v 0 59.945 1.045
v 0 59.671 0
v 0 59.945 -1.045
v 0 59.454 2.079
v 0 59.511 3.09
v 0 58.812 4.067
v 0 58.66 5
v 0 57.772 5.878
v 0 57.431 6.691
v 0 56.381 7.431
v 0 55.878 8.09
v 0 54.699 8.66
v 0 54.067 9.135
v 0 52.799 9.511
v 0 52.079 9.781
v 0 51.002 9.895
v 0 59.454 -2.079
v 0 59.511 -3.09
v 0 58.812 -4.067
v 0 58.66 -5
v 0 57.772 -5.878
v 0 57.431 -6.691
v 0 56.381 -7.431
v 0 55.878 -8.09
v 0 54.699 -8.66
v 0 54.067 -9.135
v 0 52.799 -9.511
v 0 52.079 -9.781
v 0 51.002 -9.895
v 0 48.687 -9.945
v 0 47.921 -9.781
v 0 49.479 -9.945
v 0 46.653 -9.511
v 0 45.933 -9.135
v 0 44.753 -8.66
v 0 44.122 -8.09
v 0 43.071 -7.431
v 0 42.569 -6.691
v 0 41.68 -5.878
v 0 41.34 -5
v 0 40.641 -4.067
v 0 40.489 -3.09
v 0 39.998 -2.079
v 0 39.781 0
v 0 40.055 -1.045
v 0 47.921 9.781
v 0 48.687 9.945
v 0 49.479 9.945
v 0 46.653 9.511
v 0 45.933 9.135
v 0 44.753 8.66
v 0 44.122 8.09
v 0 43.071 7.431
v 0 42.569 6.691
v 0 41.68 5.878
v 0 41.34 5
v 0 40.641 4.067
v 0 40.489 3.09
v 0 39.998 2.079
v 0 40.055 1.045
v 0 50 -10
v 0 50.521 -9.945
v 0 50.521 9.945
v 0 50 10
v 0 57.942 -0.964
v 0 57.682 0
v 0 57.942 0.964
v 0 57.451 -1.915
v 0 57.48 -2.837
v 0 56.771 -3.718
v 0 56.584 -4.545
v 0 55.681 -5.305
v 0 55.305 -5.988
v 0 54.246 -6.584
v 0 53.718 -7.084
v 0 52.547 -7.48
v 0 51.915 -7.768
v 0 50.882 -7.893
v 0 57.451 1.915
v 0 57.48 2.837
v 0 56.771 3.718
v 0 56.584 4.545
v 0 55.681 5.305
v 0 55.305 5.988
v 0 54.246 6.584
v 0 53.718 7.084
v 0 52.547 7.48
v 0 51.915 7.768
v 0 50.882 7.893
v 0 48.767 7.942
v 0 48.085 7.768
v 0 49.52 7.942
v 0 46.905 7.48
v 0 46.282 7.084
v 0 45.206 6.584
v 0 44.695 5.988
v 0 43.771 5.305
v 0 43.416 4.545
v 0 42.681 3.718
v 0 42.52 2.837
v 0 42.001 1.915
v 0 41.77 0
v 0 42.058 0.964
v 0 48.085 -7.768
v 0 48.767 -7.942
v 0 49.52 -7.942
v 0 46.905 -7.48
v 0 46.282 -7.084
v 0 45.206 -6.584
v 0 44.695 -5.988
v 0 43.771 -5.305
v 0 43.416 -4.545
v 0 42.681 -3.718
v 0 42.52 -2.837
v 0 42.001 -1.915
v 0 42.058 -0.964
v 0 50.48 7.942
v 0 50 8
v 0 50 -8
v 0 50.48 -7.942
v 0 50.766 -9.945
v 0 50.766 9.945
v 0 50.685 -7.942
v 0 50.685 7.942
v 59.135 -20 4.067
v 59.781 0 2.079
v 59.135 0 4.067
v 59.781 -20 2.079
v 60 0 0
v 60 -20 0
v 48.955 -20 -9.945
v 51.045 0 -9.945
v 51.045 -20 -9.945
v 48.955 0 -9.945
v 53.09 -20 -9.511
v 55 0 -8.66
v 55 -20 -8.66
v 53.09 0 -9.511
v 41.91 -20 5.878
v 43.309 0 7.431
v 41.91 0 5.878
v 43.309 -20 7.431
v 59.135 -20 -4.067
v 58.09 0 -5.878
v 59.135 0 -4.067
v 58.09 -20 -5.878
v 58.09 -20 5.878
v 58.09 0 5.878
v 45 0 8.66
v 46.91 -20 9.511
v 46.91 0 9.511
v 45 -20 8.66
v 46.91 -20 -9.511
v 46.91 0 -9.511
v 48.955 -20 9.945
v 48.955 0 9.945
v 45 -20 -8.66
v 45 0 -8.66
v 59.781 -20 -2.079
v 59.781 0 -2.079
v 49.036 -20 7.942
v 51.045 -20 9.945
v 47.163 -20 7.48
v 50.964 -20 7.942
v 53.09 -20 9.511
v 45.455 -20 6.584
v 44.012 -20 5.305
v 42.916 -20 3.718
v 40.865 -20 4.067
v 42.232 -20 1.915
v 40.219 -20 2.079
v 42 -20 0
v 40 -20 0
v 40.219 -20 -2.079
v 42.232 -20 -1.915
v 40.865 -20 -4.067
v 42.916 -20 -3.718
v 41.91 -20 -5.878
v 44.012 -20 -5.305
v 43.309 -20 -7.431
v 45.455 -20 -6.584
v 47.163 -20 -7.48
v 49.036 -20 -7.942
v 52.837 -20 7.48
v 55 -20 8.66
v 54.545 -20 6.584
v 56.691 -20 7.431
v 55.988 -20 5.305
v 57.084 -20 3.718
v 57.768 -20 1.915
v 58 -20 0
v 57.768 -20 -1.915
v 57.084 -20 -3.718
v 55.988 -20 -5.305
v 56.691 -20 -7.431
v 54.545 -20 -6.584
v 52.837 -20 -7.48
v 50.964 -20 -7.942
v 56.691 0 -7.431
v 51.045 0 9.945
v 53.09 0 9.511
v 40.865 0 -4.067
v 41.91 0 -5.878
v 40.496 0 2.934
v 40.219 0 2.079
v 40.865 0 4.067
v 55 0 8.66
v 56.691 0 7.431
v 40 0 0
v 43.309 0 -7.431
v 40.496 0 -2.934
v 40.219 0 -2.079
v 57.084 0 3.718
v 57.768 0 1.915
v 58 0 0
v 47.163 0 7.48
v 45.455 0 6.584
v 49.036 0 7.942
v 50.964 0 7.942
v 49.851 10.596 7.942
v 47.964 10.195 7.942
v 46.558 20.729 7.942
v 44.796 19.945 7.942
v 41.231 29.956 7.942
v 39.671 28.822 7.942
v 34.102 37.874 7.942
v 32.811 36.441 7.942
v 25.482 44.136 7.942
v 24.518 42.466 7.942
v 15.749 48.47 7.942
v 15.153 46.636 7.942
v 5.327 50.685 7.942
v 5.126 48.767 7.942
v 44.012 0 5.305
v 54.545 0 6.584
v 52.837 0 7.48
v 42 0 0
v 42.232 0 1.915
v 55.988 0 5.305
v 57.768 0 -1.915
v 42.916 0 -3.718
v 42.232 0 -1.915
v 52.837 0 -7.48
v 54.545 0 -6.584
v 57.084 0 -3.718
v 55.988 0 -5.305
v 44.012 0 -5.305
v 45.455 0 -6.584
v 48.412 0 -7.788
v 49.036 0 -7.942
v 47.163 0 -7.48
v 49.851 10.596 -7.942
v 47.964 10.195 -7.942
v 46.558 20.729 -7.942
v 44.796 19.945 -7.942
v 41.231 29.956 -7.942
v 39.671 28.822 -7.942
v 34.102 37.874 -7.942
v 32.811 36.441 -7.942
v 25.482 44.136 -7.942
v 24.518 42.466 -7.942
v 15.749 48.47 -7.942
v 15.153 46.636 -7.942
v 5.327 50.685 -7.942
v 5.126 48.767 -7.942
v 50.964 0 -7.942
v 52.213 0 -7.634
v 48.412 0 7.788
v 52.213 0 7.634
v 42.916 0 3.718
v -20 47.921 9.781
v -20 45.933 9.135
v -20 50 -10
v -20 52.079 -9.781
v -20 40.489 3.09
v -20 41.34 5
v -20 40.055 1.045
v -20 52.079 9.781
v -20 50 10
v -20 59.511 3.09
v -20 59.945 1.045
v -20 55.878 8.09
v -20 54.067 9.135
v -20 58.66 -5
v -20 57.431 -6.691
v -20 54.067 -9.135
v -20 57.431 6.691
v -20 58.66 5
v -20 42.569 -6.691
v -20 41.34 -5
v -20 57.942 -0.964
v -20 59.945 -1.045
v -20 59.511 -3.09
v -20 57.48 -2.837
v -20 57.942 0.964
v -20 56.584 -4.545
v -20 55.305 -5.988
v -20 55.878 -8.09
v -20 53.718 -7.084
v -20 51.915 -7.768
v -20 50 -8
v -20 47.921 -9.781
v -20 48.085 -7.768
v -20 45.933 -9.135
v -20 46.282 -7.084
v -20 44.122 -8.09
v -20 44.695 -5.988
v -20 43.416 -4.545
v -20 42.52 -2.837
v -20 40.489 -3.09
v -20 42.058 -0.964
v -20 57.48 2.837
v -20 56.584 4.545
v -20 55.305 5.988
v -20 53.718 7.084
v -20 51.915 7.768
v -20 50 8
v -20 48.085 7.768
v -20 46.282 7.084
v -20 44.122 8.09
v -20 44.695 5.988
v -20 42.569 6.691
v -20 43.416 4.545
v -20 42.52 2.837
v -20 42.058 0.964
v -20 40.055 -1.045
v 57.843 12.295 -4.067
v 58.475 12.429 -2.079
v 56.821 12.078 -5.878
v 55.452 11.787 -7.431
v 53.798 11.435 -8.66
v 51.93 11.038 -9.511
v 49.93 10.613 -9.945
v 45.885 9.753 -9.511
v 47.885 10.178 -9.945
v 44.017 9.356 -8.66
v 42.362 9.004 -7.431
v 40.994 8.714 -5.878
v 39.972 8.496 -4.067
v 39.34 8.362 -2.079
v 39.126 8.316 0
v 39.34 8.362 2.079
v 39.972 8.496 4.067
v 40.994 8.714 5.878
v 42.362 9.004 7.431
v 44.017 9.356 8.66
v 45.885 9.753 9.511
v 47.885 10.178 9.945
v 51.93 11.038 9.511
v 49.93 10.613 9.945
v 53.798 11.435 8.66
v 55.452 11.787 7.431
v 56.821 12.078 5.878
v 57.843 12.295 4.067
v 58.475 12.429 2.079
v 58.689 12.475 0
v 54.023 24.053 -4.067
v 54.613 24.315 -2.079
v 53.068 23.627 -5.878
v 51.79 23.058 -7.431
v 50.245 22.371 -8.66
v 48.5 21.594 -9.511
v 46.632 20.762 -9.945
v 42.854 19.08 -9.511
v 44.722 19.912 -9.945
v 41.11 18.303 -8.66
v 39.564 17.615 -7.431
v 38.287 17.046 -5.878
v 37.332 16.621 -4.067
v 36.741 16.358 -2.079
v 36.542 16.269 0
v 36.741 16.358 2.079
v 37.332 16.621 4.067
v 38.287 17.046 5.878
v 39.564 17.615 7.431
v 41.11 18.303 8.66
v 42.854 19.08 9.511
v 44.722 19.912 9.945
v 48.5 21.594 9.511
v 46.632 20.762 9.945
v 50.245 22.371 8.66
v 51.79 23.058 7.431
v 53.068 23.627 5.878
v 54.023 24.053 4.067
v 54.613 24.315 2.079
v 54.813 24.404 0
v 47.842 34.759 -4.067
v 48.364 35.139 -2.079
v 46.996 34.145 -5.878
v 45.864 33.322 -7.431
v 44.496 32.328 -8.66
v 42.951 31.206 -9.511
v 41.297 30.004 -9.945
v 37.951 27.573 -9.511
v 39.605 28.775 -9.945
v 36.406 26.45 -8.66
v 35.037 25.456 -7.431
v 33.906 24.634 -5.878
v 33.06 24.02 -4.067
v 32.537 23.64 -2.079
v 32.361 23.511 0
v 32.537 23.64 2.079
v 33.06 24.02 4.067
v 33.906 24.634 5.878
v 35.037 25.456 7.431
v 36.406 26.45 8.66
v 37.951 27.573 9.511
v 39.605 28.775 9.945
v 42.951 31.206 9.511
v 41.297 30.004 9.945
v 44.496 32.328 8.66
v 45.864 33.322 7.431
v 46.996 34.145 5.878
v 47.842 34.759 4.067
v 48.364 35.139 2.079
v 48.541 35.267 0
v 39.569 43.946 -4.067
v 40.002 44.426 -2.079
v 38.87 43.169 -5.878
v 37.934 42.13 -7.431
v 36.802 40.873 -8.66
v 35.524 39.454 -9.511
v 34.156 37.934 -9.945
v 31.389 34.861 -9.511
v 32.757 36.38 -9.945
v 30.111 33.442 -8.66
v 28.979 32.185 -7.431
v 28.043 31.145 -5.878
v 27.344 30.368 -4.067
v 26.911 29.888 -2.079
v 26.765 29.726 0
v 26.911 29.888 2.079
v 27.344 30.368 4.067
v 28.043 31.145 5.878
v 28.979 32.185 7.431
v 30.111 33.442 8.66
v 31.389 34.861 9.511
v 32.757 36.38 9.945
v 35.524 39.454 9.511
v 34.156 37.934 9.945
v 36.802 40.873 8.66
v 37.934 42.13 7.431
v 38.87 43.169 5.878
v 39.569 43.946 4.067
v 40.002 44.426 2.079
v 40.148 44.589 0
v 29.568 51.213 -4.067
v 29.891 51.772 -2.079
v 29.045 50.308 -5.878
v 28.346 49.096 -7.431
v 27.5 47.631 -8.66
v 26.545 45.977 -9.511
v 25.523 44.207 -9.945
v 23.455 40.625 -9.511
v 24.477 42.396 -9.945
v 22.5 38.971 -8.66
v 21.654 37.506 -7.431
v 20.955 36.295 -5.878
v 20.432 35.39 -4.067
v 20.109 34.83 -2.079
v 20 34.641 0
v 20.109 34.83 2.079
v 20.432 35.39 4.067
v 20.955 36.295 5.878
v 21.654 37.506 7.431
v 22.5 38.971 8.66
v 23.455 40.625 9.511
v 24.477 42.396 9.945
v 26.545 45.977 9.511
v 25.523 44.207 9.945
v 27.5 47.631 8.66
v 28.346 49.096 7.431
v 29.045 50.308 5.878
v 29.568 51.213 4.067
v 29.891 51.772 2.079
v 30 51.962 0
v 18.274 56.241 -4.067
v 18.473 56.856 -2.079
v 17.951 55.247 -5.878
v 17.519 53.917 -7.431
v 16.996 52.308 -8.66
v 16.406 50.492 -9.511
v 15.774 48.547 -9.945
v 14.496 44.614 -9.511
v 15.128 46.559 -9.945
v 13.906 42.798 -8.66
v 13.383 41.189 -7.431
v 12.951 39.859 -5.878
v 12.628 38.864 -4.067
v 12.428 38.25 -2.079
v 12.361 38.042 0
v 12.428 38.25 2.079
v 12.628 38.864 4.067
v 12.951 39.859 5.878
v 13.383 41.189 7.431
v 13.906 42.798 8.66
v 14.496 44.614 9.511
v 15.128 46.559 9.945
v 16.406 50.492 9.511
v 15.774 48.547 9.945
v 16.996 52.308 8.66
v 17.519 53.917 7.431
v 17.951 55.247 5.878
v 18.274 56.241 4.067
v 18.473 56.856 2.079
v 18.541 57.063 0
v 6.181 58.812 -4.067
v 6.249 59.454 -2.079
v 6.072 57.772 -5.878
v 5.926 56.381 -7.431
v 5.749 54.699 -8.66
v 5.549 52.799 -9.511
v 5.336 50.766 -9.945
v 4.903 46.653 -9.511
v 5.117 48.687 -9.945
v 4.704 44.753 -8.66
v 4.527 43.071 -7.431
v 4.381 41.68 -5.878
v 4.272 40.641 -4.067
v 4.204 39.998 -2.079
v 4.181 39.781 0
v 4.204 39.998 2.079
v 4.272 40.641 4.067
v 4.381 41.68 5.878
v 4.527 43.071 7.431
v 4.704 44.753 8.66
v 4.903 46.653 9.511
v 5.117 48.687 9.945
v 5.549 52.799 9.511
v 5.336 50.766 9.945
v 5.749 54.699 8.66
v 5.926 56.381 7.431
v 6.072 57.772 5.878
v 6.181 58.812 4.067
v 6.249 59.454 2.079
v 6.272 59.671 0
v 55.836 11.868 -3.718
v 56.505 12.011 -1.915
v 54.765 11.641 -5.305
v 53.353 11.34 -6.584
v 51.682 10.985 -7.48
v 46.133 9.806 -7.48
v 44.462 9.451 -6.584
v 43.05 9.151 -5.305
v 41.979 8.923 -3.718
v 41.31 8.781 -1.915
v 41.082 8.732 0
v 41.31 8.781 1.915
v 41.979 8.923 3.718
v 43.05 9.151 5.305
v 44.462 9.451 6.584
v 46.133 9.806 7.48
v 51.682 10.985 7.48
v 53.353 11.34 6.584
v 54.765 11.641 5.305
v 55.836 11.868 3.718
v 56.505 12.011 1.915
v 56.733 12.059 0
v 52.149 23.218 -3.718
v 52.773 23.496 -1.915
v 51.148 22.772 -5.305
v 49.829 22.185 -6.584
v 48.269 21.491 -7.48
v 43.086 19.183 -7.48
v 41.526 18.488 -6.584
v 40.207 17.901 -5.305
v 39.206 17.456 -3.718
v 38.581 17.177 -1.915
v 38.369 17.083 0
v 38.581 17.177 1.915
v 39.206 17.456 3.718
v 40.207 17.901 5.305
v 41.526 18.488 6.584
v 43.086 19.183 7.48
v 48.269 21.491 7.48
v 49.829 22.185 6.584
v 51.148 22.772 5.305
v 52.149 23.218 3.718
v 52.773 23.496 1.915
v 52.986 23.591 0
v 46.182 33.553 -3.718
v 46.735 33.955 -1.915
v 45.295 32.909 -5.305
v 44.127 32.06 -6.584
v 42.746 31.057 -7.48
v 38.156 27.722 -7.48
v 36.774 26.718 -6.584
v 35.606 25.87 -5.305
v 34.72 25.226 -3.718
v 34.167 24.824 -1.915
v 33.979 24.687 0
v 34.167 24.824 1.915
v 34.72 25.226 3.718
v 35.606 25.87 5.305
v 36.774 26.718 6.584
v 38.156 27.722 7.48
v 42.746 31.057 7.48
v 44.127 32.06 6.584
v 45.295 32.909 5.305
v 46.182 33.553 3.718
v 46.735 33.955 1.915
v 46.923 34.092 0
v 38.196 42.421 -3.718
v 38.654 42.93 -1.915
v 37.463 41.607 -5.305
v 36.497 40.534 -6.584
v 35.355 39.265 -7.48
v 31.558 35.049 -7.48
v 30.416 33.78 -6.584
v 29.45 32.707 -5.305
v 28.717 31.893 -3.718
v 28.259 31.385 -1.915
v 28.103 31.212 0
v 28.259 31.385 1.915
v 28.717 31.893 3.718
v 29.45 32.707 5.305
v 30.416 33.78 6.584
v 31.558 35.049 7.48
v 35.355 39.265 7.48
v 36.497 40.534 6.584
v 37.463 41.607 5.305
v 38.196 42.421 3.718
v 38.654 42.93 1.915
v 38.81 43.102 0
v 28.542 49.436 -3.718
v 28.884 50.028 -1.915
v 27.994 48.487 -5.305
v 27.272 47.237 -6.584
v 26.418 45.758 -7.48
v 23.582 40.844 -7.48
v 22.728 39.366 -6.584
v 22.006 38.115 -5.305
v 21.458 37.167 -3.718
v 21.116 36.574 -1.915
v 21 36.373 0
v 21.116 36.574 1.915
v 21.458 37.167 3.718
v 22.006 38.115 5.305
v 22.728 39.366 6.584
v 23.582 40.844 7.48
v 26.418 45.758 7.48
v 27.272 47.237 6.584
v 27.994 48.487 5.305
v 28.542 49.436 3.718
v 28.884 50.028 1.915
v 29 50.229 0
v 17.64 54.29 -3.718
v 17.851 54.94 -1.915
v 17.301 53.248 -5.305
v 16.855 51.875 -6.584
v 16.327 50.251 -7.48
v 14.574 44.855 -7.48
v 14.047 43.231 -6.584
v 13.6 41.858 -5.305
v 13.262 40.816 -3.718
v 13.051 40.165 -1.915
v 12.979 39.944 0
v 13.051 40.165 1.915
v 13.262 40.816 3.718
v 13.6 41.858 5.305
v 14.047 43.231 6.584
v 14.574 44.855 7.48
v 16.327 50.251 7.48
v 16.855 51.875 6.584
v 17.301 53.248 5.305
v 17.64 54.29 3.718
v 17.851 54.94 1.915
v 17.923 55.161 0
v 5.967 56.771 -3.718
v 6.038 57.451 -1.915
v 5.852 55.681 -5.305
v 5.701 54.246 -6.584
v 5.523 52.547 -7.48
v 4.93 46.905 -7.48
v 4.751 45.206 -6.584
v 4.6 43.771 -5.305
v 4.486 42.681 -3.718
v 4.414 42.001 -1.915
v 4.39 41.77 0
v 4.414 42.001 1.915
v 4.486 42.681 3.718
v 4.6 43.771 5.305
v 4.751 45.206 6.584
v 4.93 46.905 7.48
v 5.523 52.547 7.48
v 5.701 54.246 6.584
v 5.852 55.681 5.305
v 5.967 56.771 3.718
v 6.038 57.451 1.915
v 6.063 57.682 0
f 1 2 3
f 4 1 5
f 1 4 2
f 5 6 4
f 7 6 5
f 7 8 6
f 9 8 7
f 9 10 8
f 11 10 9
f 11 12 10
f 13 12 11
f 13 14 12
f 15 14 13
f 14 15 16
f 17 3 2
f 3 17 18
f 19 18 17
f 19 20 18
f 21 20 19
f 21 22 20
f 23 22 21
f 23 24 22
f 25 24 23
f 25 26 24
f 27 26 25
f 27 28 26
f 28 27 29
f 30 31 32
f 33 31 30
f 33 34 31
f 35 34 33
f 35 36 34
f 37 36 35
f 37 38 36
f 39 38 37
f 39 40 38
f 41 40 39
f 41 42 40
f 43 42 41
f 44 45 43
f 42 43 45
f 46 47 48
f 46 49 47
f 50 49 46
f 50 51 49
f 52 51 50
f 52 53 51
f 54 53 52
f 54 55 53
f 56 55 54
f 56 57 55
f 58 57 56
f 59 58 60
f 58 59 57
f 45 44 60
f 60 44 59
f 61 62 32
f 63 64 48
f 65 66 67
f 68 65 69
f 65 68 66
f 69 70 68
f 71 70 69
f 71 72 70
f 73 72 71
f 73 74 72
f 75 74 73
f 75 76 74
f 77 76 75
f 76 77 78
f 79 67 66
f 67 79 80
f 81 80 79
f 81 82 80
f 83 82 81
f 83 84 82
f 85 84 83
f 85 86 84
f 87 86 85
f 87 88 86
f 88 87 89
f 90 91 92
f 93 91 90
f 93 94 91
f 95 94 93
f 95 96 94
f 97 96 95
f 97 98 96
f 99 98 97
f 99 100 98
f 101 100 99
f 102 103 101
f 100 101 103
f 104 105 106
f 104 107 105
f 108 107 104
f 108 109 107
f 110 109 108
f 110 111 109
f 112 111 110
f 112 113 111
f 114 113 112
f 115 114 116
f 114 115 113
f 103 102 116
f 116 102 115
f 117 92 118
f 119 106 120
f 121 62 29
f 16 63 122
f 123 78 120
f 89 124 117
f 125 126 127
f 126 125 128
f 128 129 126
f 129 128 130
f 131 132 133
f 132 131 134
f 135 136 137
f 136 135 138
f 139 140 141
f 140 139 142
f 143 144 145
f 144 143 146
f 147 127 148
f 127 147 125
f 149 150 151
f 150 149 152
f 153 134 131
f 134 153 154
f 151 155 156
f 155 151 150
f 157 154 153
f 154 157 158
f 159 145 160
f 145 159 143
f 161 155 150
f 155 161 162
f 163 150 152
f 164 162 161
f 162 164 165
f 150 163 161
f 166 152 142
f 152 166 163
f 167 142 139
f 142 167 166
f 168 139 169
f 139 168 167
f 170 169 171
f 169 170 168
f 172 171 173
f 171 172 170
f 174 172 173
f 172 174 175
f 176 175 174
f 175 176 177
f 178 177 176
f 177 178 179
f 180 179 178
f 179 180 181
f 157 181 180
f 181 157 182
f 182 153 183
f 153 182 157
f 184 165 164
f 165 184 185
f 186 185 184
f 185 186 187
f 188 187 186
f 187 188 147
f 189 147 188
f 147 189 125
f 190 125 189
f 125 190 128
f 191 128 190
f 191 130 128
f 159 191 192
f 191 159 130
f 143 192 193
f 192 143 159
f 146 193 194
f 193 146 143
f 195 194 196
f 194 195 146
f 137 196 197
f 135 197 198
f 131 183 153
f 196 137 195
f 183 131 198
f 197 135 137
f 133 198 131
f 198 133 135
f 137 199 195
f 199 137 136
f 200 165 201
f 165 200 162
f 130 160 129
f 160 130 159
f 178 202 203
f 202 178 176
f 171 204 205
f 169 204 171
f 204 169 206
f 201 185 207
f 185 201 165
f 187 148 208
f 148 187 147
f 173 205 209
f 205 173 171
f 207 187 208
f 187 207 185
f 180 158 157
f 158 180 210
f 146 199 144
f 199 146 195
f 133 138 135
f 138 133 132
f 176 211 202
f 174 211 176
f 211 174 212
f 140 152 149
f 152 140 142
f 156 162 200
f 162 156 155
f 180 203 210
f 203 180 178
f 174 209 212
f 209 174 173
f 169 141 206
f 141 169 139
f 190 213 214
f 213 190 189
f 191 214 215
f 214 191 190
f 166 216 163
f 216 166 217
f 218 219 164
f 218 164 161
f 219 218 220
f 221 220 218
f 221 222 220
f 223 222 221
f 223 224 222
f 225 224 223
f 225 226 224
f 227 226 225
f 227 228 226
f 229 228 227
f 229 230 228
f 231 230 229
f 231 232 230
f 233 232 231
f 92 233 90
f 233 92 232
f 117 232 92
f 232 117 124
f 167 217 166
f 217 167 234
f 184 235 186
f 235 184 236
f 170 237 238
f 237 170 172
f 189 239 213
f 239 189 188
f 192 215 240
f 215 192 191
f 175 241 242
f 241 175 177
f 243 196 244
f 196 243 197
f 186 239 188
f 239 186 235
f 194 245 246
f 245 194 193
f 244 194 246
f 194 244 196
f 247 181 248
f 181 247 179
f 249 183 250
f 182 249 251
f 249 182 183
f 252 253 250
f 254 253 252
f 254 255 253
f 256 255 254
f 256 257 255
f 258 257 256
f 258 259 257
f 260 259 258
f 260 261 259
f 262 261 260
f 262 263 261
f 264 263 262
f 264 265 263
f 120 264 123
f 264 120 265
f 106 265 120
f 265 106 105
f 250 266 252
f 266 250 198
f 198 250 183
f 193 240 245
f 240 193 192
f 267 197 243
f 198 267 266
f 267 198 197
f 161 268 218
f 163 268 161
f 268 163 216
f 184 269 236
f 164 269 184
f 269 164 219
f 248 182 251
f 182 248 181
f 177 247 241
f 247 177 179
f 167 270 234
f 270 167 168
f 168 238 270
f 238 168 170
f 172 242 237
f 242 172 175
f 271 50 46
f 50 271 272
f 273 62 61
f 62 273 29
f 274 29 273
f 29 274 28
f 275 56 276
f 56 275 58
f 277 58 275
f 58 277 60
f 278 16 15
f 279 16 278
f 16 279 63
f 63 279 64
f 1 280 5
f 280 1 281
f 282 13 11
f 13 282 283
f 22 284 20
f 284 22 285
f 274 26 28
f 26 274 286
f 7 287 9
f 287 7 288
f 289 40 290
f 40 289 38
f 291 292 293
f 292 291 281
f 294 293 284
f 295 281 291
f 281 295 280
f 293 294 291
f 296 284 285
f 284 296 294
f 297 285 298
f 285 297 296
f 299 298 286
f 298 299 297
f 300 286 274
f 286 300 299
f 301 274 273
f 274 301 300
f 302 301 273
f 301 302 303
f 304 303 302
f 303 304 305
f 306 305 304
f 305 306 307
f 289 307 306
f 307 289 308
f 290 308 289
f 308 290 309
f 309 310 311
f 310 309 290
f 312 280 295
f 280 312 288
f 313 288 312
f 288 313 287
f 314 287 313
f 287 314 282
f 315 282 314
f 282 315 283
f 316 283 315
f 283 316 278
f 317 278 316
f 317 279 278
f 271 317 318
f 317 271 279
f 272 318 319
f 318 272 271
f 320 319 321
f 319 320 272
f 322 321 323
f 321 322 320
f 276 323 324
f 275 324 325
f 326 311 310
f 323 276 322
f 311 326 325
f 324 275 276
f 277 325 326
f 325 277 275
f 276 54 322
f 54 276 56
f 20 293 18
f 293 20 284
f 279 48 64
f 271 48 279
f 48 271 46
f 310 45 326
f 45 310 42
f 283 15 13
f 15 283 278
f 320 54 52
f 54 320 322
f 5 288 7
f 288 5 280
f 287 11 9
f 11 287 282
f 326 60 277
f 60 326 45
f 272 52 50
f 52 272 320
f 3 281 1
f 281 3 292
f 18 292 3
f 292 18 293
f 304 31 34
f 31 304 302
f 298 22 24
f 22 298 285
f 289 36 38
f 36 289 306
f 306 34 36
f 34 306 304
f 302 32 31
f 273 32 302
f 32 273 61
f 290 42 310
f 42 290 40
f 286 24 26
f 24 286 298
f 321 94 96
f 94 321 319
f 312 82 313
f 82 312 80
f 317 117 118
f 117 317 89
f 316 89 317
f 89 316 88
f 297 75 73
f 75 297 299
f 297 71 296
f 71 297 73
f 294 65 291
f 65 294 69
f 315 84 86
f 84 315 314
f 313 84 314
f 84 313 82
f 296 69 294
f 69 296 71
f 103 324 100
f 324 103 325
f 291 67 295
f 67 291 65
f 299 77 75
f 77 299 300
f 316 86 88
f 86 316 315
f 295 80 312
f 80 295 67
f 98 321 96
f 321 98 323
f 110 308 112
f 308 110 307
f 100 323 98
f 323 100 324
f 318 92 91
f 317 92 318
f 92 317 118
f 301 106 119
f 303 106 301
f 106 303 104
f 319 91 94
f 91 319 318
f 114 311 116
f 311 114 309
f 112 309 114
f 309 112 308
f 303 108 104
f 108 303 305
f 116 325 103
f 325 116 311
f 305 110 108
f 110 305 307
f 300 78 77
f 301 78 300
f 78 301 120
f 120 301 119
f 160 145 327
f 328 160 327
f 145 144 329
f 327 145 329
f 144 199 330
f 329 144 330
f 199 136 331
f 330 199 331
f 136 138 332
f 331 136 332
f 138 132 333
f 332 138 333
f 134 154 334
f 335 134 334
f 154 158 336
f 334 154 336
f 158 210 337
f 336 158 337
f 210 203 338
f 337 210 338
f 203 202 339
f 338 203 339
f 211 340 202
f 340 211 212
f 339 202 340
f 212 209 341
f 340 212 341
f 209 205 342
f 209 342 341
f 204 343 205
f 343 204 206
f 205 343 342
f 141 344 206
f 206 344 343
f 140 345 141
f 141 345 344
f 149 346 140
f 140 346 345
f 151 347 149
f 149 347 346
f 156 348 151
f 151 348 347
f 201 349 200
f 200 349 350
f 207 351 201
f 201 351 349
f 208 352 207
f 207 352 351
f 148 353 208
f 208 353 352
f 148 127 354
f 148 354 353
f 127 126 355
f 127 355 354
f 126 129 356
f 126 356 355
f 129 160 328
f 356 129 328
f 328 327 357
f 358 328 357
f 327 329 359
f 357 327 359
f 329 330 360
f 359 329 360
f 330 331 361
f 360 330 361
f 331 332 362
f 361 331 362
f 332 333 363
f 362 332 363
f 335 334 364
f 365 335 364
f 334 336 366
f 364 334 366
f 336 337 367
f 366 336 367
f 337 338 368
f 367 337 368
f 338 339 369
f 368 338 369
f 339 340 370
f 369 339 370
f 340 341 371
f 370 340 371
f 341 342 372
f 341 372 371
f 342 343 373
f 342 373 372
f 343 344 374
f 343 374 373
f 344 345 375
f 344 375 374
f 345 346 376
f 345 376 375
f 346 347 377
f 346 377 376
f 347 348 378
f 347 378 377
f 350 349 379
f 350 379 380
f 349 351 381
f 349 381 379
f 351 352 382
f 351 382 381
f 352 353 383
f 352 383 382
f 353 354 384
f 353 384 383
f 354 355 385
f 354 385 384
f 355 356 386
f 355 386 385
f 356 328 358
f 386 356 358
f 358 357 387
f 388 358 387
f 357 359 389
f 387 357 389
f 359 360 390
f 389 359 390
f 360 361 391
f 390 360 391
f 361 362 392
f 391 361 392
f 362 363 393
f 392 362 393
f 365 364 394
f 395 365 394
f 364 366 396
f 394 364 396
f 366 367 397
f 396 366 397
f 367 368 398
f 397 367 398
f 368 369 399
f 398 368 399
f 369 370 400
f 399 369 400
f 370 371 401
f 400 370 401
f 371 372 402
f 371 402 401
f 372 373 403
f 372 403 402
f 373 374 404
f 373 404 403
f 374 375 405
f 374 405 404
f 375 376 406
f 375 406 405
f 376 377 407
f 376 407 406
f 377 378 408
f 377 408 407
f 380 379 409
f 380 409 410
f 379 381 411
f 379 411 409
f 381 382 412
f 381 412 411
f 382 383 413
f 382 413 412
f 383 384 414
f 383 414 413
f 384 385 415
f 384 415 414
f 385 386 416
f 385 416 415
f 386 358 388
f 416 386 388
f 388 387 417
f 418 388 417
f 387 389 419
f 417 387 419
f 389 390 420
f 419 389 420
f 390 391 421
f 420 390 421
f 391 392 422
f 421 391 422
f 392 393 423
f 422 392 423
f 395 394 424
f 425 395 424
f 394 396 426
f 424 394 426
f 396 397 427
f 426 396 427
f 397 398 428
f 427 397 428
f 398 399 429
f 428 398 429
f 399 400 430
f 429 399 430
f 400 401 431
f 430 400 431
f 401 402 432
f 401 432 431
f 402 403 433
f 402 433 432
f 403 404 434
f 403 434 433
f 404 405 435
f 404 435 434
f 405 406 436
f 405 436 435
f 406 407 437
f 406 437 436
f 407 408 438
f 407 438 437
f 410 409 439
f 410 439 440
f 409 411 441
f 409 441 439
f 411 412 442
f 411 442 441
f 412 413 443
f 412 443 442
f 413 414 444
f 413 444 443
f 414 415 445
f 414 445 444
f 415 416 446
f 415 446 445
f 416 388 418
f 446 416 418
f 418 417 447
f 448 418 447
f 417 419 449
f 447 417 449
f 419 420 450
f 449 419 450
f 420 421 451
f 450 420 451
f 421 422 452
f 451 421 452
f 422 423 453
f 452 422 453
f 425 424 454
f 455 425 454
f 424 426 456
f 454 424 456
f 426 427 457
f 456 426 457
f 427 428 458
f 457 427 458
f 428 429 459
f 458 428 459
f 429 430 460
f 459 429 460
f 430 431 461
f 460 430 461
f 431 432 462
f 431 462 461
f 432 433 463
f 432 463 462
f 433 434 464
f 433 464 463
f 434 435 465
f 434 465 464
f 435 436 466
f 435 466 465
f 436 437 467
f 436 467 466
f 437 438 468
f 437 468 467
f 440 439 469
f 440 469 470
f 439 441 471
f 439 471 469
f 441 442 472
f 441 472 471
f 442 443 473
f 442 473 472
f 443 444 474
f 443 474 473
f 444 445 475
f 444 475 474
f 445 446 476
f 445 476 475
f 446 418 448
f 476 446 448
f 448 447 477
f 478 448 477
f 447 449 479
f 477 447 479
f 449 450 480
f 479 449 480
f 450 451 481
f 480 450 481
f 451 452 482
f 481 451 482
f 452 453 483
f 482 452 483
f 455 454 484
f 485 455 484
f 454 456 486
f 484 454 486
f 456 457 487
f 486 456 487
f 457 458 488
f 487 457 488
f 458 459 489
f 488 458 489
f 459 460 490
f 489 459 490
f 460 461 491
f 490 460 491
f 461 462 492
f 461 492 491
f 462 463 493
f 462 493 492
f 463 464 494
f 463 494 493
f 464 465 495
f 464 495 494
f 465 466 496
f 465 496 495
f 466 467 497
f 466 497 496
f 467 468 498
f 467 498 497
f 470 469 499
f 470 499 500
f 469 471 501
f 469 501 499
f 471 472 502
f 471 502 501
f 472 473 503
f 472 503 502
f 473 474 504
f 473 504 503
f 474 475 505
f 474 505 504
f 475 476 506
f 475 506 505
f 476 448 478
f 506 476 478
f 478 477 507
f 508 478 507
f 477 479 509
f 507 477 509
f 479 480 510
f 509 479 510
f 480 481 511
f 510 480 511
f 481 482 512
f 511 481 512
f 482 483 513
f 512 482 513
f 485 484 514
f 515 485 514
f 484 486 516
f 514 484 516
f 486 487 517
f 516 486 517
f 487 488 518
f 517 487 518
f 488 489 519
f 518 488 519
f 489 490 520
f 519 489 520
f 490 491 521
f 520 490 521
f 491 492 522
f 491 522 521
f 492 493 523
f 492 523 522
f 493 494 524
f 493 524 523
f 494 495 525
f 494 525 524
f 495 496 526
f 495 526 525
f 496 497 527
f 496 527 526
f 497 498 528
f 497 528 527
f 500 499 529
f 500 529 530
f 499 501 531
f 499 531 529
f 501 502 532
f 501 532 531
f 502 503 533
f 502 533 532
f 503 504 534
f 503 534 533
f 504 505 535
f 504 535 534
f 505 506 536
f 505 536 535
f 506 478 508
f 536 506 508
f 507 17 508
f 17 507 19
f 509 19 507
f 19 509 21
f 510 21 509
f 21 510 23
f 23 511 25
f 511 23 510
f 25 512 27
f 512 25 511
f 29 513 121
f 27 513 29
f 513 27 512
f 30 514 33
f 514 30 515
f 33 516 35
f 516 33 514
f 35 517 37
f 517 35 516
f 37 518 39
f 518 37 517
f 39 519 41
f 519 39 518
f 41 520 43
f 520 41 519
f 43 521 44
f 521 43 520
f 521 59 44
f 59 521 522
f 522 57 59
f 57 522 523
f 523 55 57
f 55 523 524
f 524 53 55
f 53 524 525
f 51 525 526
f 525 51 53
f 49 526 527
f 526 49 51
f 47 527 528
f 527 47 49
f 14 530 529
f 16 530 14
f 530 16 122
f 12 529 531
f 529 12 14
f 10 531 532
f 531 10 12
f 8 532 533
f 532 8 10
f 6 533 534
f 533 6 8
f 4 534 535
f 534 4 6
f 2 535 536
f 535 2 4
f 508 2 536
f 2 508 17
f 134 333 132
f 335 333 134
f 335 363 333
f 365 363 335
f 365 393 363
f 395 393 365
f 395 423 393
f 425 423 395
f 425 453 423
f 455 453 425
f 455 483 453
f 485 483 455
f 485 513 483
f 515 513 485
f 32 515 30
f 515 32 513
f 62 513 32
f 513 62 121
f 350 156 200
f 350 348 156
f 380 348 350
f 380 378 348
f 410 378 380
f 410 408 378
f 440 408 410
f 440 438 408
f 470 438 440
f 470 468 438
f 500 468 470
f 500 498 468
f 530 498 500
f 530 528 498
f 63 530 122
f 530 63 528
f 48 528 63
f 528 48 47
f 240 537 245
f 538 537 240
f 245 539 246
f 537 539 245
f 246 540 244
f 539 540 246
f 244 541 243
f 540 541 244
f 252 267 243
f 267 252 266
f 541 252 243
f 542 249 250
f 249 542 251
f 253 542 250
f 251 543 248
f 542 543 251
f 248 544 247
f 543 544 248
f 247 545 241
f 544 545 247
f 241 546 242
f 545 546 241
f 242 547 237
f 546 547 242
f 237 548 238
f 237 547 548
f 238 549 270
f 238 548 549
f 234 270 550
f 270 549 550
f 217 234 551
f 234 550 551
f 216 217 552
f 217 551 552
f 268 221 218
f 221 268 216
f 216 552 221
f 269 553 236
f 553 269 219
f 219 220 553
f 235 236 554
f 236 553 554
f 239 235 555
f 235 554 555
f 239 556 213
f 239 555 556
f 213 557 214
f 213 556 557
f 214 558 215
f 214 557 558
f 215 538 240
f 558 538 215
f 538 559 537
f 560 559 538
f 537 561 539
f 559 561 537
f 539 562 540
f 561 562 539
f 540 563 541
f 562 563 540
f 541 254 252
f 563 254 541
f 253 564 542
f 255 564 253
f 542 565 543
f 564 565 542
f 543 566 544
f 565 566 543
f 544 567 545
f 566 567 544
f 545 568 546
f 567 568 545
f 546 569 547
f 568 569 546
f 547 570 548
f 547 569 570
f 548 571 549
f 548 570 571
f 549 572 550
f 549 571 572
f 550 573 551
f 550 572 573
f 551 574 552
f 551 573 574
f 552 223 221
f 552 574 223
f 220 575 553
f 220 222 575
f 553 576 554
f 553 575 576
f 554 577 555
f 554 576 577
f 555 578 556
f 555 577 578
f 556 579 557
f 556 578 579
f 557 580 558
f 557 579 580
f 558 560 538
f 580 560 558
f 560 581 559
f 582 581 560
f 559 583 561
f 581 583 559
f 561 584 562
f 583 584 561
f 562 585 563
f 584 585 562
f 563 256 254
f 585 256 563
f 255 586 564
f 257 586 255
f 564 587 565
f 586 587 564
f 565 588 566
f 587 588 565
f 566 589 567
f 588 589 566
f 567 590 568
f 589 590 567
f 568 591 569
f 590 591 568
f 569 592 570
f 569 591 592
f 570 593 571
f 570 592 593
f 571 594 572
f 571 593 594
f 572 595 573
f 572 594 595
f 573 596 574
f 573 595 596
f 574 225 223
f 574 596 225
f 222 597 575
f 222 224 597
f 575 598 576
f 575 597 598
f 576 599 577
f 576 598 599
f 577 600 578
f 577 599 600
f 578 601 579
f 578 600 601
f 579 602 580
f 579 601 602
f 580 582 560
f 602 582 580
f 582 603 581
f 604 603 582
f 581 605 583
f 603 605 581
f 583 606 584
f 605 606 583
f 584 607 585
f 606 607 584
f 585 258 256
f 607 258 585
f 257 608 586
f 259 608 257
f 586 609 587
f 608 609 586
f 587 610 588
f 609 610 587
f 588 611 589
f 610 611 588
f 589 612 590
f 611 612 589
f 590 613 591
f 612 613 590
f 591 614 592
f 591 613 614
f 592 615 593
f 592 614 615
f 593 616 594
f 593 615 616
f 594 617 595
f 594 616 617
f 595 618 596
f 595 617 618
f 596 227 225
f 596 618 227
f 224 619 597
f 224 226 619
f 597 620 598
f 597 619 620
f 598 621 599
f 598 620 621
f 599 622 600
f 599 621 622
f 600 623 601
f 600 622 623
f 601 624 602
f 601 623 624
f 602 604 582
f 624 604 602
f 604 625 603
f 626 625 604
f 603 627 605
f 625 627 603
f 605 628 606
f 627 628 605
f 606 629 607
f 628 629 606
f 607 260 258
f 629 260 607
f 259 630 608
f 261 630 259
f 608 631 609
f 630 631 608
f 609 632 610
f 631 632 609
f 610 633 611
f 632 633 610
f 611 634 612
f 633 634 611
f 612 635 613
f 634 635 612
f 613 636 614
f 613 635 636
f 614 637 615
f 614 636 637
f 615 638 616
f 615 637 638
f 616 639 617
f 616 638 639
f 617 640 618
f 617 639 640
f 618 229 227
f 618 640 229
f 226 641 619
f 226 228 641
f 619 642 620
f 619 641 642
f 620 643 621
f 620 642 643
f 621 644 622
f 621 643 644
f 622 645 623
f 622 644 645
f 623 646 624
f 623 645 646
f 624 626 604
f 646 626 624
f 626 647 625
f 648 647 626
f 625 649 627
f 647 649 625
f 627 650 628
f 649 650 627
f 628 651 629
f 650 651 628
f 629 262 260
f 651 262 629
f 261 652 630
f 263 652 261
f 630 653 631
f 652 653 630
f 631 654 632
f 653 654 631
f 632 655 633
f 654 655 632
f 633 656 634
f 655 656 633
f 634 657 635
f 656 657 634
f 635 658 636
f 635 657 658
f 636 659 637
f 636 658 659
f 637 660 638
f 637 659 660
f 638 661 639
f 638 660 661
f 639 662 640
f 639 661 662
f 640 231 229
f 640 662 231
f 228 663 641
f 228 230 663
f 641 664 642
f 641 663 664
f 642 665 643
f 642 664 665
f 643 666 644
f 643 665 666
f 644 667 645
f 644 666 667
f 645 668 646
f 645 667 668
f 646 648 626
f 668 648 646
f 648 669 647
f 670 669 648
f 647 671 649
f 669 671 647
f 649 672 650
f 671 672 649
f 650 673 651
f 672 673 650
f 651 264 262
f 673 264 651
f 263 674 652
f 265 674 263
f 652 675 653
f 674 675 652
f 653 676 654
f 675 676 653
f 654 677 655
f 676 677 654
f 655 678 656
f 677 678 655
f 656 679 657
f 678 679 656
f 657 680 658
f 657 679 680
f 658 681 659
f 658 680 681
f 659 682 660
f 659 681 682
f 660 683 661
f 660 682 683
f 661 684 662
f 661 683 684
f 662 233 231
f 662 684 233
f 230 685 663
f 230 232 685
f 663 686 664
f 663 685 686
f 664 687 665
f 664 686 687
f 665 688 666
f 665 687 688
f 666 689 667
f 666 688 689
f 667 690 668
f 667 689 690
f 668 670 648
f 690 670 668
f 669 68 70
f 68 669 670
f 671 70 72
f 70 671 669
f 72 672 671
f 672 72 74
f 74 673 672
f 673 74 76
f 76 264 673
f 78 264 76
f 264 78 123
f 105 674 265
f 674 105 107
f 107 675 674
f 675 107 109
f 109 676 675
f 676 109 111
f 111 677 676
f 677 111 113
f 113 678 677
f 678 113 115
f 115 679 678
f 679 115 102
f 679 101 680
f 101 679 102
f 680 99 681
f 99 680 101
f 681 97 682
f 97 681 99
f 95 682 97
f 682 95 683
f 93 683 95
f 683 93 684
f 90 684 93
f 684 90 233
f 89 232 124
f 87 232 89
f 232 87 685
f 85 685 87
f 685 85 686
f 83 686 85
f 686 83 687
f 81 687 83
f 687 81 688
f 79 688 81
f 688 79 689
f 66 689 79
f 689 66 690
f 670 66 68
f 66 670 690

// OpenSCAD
// sample of curved cylinder
// source: https://reprap.org/forum/read.php?1,193396,193421#msg-193421

union(){
	difference(){
		rotate_extrude(angle=120) translate ([50,0,0]) circle(10);
		difference(){
			cube([120,120,40], center = true);
			translate([30,30,0]) cube([60,60,40], center = true);	
			}
		rotate_extrude(angle=120) translate ([50,0,0]) circle(8);
		difference(){
			cube([120,120,40], center = true);
			translate([30,30,0]) cube([60,60,40], center = true);	
		}
	}
	difference(){
		translate([50,0,0]) rotate([90,0,0]) cylinder(r=10,h=20);
		translate([50,0,0]) rotate([90,0,0]) cylinder(r=8,h=22);
	}
	difference(){
		translate([0,50,0]) rotate([0,270,0]) cylinder(r=10,h=20);
		translate([0,50,0]) rotate([0,270,0]) cylinder(r=8,h=22);
	}	
}
